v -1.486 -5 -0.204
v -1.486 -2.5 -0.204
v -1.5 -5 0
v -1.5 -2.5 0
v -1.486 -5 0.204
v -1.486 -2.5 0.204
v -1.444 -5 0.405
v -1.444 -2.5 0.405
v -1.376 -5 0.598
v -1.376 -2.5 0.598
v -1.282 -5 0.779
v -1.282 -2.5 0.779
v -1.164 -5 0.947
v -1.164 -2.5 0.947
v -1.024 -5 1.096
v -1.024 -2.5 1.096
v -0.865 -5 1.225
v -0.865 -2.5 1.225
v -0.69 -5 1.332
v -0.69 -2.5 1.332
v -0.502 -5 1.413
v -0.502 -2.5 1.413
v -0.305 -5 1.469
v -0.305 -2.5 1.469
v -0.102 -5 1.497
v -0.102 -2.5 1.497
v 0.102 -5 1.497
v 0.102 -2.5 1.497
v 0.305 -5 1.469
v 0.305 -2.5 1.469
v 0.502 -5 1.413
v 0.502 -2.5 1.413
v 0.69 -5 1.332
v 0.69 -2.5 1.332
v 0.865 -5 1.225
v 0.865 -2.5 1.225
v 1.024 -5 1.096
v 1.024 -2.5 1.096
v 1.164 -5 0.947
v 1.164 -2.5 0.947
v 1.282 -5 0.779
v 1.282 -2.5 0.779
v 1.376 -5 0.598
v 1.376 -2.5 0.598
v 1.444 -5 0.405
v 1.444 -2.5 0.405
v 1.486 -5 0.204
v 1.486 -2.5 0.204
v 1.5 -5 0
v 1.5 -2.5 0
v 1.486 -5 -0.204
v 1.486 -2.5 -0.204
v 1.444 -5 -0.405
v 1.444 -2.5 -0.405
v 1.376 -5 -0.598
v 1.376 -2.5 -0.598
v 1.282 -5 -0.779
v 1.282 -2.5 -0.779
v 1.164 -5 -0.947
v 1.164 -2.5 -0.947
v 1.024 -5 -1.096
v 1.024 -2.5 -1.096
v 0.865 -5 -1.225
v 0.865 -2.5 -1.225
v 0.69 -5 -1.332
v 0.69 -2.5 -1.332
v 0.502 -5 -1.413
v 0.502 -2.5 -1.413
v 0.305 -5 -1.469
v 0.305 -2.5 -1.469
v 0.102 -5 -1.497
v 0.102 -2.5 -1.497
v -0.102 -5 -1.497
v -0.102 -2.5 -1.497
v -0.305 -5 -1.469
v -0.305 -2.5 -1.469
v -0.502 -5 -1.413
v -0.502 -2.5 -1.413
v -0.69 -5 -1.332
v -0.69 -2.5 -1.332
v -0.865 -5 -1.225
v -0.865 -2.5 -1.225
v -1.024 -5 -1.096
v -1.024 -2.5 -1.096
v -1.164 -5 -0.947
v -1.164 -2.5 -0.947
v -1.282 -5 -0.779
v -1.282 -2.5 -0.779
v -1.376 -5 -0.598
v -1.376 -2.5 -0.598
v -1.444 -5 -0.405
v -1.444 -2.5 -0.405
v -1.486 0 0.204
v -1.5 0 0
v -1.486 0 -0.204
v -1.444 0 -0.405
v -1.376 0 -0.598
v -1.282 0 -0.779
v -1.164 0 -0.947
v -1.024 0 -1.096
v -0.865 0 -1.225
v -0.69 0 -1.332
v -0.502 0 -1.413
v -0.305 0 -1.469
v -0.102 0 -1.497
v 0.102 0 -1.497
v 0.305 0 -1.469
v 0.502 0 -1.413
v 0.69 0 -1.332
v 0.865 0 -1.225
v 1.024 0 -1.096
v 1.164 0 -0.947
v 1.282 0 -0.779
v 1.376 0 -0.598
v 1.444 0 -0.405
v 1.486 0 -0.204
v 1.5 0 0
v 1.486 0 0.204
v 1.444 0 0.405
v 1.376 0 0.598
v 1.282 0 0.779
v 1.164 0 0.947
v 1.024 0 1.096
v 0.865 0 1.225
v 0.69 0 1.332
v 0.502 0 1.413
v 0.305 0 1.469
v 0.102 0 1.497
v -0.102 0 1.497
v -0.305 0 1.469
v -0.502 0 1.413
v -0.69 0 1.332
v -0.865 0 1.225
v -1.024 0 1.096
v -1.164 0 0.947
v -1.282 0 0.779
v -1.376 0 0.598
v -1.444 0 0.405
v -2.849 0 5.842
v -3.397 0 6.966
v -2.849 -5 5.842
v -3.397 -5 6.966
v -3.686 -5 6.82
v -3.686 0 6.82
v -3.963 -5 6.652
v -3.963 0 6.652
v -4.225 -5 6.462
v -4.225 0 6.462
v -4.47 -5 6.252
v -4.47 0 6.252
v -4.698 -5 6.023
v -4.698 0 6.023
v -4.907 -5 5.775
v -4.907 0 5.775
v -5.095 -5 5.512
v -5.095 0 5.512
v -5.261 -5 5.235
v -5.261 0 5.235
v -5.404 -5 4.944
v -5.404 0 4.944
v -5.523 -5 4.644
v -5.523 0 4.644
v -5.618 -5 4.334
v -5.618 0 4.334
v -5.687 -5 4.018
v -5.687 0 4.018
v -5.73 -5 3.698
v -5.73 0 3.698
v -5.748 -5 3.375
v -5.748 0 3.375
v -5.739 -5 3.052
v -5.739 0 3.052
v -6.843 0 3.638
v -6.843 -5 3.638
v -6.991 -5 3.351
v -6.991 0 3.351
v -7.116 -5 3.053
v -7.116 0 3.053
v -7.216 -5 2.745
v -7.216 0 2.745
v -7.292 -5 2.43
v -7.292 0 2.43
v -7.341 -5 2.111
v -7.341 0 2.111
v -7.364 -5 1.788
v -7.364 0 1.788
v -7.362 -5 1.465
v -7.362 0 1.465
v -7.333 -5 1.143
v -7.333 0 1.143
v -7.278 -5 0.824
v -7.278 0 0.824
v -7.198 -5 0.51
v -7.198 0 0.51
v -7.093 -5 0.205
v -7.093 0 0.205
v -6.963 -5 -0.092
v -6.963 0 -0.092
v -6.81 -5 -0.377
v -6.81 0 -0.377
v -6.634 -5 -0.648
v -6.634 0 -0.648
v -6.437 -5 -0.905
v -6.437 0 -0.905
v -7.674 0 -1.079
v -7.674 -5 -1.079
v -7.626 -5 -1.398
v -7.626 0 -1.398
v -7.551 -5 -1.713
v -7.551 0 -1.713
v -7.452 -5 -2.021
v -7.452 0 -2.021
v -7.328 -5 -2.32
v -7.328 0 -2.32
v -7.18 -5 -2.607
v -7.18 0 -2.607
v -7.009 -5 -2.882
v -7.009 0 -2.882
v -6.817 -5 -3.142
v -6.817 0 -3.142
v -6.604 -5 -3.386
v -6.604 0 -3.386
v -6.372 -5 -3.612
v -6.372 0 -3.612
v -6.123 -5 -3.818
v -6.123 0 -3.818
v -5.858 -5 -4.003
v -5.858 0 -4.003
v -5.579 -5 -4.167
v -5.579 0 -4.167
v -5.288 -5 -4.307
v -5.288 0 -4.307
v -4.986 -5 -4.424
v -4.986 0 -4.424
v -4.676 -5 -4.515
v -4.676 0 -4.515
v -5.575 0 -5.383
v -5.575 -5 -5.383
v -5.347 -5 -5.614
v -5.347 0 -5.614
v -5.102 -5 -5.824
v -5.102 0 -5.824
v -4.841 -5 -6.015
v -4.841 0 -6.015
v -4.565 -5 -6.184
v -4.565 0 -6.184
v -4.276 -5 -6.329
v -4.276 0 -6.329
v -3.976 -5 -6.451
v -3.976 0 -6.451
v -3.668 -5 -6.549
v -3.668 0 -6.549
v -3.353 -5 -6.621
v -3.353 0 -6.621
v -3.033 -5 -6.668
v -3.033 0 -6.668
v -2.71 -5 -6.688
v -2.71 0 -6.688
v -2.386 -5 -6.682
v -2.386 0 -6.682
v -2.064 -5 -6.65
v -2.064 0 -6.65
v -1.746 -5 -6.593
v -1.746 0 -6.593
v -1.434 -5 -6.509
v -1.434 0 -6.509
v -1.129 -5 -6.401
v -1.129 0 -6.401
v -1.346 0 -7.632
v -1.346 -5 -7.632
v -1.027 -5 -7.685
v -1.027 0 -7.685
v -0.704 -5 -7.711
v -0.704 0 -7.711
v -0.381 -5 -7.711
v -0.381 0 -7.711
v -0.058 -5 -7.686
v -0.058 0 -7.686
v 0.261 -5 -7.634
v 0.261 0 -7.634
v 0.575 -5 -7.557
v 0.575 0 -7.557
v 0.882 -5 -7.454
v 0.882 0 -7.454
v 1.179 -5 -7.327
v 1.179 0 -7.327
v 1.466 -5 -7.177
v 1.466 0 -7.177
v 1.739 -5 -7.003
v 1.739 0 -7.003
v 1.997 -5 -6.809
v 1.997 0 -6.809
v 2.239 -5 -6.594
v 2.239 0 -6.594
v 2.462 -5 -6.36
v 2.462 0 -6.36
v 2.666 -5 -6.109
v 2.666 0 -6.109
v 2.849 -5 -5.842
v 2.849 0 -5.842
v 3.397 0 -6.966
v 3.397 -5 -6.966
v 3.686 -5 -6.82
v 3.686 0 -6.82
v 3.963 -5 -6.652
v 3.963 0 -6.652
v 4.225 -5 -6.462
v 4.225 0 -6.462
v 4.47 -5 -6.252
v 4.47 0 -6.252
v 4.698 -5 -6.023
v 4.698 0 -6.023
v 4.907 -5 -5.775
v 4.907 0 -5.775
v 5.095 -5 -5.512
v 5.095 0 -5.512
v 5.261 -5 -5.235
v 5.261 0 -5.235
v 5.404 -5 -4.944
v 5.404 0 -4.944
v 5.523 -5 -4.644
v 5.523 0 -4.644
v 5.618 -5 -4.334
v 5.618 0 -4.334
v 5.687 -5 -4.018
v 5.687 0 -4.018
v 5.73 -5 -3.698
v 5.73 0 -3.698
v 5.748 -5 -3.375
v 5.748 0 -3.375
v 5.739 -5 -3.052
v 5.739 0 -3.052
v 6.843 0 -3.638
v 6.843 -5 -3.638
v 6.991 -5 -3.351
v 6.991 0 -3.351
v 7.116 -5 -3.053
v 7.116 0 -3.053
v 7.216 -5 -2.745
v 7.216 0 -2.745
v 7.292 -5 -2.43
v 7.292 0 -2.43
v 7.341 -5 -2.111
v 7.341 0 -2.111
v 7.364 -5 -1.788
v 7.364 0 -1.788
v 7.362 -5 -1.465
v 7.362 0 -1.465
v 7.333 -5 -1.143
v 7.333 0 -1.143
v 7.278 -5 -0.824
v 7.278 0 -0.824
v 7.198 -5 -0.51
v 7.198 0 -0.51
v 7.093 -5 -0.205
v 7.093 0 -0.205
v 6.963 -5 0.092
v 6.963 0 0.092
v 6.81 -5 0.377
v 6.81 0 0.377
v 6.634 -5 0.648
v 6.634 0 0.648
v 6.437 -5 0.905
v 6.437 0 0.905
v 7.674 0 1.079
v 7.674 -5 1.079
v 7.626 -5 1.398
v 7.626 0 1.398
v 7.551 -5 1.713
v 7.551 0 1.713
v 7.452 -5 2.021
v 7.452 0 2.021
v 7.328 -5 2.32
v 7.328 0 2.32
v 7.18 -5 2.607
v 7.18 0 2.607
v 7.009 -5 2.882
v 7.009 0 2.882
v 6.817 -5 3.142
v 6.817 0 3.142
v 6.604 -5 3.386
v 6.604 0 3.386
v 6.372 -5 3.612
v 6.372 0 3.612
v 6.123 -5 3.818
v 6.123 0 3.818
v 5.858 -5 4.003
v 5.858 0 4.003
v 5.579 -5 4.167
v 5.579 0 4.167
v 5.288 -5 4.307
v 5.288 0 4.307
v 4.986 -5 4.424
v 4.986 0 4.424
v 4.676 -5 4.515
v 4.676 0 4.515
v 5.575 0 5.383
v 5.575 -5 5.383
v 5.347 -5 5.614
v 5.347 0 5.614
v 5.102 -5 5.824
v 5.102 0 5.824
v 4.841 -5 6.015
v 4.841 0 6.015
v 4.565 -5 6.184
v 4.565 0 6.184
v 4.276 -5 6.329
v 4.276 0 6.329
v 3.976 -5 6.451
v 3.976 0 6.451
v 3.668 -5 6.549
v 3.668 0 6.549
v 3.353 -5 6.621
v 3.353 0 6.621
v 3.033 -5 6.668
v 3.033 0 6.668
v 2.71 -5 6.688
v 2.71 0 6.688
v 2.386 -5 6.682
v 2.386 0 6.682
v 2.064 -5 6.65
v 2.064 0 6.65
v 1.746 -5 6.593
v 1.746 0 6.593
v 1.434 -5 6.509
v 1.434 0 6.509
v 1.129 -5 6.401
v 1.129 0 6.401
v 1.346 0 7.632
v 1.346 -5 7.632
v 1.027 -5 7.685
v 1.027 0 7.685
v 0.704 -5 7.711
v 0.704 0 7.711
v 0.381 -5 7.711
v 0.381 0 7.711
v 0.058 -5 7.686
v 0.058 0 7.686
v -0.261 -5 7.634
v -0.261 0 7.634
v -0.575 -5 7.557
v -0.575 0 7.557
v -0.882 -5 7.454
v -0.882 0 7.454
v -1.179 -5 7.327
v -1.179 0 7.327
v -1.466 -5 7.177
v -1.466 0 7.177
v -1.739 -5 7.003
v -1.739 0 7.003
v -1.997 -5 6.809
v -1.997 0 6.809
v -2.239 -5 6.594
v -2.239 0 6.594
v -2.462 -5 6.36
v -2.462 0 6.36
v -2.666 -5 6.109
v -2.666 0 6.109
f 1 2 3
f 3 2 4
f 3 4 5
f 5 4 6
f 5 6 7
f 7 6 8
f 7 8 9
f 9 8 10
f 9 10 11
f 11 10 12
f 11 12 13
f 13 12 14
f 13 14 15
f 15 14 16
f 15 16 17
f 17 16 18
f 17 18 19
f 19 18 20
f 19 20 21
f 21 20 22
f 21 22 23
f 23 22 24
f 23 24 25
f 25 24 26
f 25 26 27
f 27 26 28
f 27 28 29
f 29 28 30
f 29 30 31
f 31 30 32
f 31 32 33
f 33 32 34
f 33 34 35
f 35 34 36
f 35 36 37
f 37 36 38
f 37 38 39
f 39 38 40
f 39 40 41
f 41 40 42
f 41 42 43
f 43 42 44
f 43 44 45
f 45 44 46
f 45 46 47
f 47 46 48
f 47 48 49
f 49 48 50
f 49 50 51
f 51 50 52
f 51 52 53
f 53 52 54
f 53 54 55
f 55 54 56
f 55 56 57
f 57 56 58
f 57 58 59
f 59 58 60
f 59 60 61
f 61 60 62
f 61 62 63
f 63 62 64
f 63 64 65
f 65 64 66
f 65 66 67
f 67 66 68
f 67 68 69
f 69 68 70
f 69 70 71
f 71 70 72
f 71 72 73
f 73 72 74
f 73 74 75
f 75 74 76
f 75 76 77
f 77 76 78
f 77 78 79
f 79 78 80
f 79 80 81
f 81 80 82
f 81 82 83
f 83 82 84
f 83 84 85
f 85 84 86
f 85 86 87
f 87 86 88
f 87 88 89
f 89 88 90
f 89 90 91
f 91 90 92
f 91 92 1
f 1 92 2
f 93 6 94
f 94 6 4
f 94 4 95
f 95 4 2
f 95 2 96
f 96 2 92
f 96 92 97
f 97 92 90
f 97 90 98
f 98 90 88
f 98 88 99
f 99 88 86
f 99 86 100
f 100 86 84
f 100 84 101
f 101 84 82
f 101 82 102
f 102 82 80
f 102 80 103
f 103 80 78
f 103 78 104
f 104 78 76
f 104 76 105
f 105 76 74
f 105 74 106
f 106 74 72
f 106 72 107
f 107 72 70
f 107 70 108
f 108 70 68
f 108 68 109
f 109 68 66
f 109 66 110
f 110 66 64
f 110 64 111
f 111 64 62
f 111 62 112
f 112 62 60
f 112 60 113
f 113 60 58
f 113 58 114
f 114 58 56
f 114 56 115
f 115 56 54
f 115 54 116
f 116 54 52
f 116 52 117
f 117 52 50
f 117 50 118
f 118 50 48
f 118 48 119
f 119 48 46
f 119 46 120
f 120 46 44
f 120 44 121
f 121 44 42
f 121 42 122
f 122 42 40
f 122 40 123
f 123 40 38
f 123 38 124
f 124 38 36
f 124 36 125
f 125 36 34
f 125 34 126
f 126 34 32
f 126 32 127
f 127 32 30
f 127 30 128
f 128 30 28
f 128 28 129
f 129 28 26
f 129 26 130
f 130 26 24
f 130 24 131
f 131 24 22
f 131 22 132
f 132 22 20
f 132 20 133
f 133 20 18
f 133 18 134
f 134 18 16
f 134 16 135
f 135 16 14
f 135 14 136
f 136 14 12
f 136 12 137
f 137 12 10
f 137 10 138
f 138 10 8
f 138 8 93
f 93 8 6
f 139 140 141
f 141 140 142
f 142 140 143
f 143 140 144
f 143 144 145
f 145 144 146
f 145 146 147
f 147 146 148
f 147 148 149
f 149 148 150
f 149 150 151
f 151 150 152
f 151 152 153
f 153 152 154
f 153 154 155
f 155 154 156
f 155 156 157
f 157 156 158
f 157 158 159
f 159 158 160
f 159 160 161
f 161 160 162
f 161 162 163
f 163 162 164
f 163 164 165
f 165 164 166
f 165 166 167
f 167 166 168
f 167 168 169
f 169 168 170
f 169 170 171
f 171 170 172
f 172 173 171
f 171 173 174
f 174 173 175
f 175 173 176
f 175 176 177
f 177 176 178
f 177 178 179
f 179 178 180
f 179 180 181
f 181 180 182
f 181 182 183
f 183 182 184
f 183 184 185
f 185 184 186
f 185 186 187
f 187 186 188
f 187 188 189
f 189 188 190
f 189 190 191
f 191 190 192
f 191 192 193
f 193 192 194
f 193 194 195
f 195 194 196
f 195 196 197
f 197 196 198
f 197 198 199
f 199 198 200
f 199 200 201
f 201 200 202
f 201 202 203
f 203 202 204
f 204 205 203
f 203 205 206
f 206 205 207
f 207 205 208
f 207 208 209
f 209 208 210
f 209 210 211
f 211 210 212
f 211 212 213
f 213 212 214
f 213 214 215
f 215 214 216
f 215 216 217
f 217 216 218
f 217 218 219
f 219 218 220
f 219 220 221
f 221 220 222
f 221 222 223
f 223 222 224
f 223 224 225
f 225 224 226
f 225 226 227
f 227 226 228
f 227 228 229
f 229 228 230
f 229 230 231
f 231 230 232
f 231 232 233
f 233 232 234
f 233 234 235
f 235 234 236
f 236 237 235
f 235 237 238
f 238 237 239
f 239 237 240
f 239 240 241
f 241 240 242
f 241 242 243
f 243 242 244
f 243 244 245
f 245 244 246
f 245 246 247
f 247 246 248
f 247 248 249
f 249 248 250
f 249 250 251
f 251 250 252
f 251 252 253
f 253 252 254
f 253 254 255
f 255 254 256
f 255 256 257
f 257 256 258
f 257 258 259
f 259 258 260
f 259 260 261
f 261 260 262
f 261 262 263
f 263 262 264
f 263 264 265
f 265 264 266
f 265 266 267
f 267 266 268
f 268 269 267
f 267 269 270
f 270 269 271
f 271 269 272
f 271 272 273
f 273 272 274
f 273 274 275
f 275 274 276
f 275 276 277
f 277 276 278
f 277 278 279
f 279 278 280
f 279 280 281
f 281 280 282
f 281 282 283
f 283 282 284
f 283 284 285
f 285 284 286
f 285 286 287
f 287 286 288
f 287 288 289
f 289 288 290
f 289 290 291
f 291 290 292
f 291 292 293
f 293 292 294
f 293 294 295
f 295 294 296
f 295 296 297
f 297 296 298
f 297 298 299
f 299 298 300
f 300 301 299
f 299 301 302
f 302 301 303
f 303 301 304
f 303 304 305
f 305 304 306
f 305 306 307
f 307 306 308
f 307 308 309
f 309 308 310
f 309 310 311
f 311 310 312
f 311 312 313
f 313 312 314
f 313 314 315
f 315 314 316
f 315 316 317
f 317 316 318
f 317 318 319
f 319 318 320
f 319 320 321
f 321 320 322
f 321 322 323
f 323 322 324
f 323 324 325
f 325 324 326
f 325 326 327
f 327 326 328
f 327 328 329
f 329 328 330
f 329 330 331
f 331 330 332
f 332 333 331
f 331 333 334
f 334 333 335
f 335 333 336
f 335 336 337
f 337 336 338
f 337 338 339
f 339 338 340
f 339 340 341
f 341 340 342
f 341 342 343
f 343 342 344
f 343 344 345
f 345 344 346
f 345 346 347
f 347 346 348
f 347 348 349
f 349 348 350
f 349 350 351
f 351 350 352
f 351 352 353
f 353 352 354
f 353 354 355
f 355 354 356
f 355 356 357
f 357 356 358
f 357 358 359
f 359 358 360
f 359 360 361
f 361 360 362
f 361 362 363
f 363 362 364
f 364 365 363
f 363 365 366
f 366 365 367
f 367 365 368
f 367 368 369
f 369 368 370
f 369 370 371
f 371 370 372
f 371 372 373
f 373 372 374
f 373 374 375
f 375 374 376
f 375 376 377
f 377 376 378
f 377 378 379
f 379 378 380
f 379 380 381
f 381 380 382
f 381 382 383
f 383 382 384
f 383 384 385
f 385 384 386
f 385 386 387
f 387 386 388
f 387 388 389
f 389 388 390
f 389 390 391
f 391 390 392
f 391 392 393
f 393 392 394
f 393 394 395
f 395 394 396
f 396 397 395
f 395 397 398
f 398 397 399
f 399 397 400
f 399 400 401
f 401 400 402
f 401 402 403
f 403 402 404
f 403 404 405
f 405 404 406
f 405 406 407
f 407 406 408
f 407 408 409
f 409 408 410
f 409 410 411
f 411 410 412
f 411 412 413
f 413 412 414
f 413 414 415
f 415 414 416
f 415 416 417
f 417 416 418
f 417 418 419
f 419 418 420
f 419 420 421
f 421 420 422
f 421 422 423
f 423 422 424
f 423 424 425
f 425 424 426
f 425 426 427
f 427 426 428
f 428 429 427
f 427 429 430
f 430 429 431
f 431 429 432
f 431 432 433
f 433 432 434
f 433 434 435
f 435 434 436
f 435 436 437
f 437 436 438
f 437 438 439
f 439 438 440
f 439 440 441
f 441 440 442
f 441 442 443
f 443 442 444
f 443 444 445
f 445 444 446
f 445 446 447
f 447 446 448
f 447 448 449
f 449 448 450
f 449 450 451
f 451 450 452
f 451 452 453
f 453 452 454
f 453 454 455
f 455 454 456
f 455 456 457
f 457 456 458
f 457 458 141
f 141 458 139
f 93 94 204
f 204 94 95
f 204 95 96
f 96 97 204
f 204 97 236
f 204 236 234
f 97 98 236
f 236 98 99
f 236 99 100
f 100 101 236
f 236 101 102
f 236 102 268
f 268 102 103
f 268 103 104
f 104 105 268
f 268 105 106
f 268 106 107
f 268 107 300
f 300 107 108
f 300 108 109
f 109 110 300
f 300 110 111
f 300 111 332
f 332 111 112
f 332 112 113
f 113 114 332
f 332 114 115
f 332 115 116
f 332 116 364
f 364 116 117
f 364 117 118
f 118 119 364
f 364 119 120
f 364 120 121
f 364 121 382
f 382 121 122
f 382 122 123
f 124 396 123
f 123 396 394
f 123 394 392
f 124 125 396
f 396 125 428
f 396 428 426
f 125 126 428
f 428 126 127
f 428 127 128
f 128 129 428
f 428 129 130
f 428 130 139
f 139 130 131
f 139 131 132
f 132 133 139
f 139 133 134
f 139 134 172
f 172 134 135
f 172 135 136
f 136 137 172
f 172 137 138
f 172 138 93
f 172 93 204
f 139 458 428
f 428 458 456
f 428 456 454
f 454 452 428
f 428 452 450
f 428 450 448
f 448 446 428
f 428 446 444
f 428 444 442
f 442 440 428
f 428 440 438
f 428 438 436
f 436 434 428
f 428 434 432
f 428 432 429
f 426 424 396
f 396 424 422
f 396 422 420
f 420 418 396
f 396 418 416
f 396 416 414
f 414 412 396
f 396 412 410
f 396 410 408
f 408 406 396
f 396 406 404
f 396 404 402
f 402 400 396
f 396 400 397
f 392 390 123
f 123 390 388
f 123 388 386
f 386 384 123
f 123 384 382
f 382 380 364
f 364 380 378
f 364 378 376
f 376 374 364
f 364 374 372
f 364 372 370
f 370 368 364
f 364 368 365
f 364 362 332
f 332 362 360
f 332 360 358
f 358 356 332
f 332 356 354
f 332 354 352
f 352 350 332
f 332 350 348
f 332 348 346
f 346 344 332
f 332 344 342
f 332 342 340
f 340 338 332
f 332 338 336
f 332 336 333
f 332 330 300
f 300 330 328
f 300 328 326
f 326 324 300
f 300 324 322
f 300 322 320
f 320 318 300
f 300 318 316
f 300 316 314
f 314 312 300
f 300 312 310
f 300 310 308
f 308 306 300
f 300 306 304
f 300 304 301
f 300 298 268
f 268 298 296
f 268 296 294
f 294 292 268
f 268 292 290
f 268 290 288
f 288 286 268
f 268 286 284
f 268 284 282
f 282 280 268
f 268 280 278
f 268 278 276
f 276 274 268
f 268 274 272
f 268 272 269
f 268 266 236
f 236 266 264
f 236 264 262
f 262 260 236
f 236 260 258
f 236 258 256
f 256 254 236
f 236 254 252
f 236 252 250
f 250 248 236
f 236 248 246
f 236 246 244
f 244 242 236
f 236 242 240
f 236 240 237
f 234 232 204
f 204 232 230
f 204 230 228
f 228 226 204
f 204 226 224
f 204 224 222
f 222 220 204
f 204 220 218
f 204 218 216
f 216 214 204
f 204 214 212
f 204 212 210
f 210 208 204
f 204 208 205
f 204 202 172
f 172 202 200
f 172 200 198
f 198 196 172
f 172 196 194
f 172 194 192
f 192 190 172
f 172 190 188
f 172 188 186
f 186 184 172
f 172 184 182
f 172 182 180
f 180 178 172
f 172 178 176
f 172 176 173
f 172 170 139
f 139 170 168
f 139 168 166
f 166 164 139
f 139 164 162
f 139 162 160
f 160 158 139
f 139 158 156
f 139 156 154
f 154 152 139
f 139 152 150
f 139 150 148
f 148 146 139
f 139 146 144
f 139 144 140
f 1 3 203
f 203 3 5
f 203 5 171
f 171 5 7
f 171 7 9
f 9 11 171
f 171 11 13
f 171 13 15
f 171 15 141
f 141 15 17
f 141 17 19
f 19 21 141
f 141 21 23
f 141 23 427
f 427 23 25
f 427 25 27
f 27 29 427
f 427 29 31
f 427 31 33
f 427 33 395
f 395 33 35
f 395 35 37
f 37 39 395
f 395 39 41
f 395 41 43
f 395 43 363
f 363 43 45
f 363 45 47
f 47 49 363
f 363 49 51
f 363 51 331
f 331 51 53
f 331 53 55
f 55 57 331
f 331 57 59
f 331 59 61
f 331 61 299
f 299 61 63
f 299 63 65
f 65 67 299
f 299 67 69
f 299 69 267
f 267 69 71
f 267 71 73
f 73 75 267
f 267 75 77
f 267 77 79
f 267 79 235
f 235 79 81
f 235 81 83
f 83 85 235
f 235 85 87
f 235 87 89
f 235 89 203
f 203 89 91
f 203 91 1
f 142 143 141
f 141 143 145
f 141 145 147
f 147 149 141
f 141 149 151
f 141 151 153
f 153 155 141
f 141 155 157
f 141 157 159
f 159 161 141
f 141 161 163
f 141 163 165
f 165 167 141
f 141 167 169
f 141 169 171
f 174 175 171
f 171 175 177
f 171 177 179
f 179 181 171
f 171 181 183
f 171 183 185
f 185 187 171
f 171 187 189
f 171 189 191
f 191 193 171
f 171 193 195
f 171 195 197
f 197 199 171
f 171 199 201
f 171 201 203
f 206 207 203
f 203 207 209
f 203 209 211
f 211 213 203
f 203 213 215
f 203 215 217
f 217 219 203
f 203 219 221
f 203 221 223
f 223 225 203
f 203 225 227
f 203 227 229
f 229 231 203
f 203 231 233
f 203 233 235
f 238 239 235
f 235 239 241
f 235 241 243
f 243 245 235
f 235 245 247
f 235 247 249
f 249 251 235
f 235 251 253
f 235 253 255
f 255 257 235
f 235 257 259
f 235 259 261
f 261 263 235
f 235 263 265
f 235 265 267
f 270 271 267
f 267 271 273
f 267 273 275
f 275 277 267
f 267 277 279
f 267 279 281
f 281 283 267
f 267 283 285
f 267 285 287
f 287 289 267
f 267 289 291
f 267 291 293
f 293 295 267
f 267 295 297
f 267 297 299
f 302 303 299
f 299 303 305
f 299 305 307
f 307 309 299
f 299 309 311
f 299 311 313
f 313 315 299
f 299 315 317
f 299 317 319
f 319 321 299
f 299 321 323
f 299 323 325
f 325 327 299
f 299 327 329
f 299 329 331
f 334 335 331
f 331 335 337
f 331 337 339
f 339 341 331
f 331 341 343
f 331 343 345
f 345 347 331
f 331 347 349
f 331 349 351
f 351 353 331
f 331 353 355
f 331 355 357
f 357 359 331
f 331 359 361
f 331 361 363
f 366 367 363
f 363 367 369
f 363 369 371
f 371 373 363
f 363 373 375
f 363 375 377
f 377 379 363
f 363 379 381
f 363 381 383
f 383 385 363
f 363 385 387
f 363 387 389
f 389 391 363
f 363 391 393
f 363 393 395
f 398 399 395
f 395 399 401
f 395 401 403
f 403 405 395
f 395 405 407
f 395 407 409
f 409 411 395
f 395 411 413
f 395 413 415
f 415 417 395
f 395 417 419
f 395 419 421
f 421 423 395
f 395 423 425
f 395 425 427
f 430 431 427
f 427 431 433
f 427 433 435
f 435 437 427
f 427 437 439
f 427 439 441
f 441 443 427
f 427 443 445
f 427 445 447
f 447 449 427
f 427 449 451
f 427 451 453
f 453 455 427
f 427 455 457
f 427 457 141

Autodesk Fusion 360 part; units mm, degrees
sketch "ratchet" plane through (0, 0, 0) normal (0, 1, 0) x (1, 0, 0)
  circle A0 centre (0, 0) radius 6.5
  circle A1 centre (0, 0) radius 1.5
  circle A2 centre (0, 0) radius 2
  line L0 (0, 0) -> (1.3457, -7.6321)
  line L1 (0, 0) -> (-2.8494, -5.8422)
  arc A3 (-2.8494, -5.8422) -> (1.3457, -7.6321) centre (0.5378, -3.7146) ccw
  line L2 (0, 0) -> (7.7499, 0) construction
  arc A4 (1.3457, -7.6321) -> (0.8742, -7.7004) centre (0, 0) ccw
  dimension "d1" = 13
  dimension "d2" = 4
  dimension "d3" = 3
  dimension "d5" = 7.6321
  dimension "d6" = 36
  dimension "d7" = 4
  dimension "d12" = 80
extrude "Extrude1" add sketch "ratchet" against normal blind 5 contours A0 A2 L0 L1 | A0 L0 A3 picked at (-1.3488, -4.8046) makes body 1
pattern_circular "C-Pattern1" count 10 over 360 about axis through (0, -5, 0) along (0, 1, 0) of bodies 1 makes body 2 at (2.8174, -1.6667, 2.7207) makes body 3 at (3.8785, -3.3333, 0.5451) makes body 4 at (3.4582, -3.3333, -1.8387) makes body 5 at (1.7169, -1.6667, -3.5202) makes body 6 at (-0.6801, -1.6667, -3.8571) makes body 7 at (-2.8174, -3.3333, -2.7207) makes body 8 at (-3.8785, -3.3333, -0.5451) makes body 9 at (-3.4582, -1.6667, 1.8387) makes body 10 at (-1.7169, -1.6667, 3.5202)
extrude "Extrude2" add sketch "ratchet" against normal blind 5 contours A1 A2 L0 L1 | A1 A2 L0 L1 bodies 1 2 3 4 5 6 7 8 9 10
